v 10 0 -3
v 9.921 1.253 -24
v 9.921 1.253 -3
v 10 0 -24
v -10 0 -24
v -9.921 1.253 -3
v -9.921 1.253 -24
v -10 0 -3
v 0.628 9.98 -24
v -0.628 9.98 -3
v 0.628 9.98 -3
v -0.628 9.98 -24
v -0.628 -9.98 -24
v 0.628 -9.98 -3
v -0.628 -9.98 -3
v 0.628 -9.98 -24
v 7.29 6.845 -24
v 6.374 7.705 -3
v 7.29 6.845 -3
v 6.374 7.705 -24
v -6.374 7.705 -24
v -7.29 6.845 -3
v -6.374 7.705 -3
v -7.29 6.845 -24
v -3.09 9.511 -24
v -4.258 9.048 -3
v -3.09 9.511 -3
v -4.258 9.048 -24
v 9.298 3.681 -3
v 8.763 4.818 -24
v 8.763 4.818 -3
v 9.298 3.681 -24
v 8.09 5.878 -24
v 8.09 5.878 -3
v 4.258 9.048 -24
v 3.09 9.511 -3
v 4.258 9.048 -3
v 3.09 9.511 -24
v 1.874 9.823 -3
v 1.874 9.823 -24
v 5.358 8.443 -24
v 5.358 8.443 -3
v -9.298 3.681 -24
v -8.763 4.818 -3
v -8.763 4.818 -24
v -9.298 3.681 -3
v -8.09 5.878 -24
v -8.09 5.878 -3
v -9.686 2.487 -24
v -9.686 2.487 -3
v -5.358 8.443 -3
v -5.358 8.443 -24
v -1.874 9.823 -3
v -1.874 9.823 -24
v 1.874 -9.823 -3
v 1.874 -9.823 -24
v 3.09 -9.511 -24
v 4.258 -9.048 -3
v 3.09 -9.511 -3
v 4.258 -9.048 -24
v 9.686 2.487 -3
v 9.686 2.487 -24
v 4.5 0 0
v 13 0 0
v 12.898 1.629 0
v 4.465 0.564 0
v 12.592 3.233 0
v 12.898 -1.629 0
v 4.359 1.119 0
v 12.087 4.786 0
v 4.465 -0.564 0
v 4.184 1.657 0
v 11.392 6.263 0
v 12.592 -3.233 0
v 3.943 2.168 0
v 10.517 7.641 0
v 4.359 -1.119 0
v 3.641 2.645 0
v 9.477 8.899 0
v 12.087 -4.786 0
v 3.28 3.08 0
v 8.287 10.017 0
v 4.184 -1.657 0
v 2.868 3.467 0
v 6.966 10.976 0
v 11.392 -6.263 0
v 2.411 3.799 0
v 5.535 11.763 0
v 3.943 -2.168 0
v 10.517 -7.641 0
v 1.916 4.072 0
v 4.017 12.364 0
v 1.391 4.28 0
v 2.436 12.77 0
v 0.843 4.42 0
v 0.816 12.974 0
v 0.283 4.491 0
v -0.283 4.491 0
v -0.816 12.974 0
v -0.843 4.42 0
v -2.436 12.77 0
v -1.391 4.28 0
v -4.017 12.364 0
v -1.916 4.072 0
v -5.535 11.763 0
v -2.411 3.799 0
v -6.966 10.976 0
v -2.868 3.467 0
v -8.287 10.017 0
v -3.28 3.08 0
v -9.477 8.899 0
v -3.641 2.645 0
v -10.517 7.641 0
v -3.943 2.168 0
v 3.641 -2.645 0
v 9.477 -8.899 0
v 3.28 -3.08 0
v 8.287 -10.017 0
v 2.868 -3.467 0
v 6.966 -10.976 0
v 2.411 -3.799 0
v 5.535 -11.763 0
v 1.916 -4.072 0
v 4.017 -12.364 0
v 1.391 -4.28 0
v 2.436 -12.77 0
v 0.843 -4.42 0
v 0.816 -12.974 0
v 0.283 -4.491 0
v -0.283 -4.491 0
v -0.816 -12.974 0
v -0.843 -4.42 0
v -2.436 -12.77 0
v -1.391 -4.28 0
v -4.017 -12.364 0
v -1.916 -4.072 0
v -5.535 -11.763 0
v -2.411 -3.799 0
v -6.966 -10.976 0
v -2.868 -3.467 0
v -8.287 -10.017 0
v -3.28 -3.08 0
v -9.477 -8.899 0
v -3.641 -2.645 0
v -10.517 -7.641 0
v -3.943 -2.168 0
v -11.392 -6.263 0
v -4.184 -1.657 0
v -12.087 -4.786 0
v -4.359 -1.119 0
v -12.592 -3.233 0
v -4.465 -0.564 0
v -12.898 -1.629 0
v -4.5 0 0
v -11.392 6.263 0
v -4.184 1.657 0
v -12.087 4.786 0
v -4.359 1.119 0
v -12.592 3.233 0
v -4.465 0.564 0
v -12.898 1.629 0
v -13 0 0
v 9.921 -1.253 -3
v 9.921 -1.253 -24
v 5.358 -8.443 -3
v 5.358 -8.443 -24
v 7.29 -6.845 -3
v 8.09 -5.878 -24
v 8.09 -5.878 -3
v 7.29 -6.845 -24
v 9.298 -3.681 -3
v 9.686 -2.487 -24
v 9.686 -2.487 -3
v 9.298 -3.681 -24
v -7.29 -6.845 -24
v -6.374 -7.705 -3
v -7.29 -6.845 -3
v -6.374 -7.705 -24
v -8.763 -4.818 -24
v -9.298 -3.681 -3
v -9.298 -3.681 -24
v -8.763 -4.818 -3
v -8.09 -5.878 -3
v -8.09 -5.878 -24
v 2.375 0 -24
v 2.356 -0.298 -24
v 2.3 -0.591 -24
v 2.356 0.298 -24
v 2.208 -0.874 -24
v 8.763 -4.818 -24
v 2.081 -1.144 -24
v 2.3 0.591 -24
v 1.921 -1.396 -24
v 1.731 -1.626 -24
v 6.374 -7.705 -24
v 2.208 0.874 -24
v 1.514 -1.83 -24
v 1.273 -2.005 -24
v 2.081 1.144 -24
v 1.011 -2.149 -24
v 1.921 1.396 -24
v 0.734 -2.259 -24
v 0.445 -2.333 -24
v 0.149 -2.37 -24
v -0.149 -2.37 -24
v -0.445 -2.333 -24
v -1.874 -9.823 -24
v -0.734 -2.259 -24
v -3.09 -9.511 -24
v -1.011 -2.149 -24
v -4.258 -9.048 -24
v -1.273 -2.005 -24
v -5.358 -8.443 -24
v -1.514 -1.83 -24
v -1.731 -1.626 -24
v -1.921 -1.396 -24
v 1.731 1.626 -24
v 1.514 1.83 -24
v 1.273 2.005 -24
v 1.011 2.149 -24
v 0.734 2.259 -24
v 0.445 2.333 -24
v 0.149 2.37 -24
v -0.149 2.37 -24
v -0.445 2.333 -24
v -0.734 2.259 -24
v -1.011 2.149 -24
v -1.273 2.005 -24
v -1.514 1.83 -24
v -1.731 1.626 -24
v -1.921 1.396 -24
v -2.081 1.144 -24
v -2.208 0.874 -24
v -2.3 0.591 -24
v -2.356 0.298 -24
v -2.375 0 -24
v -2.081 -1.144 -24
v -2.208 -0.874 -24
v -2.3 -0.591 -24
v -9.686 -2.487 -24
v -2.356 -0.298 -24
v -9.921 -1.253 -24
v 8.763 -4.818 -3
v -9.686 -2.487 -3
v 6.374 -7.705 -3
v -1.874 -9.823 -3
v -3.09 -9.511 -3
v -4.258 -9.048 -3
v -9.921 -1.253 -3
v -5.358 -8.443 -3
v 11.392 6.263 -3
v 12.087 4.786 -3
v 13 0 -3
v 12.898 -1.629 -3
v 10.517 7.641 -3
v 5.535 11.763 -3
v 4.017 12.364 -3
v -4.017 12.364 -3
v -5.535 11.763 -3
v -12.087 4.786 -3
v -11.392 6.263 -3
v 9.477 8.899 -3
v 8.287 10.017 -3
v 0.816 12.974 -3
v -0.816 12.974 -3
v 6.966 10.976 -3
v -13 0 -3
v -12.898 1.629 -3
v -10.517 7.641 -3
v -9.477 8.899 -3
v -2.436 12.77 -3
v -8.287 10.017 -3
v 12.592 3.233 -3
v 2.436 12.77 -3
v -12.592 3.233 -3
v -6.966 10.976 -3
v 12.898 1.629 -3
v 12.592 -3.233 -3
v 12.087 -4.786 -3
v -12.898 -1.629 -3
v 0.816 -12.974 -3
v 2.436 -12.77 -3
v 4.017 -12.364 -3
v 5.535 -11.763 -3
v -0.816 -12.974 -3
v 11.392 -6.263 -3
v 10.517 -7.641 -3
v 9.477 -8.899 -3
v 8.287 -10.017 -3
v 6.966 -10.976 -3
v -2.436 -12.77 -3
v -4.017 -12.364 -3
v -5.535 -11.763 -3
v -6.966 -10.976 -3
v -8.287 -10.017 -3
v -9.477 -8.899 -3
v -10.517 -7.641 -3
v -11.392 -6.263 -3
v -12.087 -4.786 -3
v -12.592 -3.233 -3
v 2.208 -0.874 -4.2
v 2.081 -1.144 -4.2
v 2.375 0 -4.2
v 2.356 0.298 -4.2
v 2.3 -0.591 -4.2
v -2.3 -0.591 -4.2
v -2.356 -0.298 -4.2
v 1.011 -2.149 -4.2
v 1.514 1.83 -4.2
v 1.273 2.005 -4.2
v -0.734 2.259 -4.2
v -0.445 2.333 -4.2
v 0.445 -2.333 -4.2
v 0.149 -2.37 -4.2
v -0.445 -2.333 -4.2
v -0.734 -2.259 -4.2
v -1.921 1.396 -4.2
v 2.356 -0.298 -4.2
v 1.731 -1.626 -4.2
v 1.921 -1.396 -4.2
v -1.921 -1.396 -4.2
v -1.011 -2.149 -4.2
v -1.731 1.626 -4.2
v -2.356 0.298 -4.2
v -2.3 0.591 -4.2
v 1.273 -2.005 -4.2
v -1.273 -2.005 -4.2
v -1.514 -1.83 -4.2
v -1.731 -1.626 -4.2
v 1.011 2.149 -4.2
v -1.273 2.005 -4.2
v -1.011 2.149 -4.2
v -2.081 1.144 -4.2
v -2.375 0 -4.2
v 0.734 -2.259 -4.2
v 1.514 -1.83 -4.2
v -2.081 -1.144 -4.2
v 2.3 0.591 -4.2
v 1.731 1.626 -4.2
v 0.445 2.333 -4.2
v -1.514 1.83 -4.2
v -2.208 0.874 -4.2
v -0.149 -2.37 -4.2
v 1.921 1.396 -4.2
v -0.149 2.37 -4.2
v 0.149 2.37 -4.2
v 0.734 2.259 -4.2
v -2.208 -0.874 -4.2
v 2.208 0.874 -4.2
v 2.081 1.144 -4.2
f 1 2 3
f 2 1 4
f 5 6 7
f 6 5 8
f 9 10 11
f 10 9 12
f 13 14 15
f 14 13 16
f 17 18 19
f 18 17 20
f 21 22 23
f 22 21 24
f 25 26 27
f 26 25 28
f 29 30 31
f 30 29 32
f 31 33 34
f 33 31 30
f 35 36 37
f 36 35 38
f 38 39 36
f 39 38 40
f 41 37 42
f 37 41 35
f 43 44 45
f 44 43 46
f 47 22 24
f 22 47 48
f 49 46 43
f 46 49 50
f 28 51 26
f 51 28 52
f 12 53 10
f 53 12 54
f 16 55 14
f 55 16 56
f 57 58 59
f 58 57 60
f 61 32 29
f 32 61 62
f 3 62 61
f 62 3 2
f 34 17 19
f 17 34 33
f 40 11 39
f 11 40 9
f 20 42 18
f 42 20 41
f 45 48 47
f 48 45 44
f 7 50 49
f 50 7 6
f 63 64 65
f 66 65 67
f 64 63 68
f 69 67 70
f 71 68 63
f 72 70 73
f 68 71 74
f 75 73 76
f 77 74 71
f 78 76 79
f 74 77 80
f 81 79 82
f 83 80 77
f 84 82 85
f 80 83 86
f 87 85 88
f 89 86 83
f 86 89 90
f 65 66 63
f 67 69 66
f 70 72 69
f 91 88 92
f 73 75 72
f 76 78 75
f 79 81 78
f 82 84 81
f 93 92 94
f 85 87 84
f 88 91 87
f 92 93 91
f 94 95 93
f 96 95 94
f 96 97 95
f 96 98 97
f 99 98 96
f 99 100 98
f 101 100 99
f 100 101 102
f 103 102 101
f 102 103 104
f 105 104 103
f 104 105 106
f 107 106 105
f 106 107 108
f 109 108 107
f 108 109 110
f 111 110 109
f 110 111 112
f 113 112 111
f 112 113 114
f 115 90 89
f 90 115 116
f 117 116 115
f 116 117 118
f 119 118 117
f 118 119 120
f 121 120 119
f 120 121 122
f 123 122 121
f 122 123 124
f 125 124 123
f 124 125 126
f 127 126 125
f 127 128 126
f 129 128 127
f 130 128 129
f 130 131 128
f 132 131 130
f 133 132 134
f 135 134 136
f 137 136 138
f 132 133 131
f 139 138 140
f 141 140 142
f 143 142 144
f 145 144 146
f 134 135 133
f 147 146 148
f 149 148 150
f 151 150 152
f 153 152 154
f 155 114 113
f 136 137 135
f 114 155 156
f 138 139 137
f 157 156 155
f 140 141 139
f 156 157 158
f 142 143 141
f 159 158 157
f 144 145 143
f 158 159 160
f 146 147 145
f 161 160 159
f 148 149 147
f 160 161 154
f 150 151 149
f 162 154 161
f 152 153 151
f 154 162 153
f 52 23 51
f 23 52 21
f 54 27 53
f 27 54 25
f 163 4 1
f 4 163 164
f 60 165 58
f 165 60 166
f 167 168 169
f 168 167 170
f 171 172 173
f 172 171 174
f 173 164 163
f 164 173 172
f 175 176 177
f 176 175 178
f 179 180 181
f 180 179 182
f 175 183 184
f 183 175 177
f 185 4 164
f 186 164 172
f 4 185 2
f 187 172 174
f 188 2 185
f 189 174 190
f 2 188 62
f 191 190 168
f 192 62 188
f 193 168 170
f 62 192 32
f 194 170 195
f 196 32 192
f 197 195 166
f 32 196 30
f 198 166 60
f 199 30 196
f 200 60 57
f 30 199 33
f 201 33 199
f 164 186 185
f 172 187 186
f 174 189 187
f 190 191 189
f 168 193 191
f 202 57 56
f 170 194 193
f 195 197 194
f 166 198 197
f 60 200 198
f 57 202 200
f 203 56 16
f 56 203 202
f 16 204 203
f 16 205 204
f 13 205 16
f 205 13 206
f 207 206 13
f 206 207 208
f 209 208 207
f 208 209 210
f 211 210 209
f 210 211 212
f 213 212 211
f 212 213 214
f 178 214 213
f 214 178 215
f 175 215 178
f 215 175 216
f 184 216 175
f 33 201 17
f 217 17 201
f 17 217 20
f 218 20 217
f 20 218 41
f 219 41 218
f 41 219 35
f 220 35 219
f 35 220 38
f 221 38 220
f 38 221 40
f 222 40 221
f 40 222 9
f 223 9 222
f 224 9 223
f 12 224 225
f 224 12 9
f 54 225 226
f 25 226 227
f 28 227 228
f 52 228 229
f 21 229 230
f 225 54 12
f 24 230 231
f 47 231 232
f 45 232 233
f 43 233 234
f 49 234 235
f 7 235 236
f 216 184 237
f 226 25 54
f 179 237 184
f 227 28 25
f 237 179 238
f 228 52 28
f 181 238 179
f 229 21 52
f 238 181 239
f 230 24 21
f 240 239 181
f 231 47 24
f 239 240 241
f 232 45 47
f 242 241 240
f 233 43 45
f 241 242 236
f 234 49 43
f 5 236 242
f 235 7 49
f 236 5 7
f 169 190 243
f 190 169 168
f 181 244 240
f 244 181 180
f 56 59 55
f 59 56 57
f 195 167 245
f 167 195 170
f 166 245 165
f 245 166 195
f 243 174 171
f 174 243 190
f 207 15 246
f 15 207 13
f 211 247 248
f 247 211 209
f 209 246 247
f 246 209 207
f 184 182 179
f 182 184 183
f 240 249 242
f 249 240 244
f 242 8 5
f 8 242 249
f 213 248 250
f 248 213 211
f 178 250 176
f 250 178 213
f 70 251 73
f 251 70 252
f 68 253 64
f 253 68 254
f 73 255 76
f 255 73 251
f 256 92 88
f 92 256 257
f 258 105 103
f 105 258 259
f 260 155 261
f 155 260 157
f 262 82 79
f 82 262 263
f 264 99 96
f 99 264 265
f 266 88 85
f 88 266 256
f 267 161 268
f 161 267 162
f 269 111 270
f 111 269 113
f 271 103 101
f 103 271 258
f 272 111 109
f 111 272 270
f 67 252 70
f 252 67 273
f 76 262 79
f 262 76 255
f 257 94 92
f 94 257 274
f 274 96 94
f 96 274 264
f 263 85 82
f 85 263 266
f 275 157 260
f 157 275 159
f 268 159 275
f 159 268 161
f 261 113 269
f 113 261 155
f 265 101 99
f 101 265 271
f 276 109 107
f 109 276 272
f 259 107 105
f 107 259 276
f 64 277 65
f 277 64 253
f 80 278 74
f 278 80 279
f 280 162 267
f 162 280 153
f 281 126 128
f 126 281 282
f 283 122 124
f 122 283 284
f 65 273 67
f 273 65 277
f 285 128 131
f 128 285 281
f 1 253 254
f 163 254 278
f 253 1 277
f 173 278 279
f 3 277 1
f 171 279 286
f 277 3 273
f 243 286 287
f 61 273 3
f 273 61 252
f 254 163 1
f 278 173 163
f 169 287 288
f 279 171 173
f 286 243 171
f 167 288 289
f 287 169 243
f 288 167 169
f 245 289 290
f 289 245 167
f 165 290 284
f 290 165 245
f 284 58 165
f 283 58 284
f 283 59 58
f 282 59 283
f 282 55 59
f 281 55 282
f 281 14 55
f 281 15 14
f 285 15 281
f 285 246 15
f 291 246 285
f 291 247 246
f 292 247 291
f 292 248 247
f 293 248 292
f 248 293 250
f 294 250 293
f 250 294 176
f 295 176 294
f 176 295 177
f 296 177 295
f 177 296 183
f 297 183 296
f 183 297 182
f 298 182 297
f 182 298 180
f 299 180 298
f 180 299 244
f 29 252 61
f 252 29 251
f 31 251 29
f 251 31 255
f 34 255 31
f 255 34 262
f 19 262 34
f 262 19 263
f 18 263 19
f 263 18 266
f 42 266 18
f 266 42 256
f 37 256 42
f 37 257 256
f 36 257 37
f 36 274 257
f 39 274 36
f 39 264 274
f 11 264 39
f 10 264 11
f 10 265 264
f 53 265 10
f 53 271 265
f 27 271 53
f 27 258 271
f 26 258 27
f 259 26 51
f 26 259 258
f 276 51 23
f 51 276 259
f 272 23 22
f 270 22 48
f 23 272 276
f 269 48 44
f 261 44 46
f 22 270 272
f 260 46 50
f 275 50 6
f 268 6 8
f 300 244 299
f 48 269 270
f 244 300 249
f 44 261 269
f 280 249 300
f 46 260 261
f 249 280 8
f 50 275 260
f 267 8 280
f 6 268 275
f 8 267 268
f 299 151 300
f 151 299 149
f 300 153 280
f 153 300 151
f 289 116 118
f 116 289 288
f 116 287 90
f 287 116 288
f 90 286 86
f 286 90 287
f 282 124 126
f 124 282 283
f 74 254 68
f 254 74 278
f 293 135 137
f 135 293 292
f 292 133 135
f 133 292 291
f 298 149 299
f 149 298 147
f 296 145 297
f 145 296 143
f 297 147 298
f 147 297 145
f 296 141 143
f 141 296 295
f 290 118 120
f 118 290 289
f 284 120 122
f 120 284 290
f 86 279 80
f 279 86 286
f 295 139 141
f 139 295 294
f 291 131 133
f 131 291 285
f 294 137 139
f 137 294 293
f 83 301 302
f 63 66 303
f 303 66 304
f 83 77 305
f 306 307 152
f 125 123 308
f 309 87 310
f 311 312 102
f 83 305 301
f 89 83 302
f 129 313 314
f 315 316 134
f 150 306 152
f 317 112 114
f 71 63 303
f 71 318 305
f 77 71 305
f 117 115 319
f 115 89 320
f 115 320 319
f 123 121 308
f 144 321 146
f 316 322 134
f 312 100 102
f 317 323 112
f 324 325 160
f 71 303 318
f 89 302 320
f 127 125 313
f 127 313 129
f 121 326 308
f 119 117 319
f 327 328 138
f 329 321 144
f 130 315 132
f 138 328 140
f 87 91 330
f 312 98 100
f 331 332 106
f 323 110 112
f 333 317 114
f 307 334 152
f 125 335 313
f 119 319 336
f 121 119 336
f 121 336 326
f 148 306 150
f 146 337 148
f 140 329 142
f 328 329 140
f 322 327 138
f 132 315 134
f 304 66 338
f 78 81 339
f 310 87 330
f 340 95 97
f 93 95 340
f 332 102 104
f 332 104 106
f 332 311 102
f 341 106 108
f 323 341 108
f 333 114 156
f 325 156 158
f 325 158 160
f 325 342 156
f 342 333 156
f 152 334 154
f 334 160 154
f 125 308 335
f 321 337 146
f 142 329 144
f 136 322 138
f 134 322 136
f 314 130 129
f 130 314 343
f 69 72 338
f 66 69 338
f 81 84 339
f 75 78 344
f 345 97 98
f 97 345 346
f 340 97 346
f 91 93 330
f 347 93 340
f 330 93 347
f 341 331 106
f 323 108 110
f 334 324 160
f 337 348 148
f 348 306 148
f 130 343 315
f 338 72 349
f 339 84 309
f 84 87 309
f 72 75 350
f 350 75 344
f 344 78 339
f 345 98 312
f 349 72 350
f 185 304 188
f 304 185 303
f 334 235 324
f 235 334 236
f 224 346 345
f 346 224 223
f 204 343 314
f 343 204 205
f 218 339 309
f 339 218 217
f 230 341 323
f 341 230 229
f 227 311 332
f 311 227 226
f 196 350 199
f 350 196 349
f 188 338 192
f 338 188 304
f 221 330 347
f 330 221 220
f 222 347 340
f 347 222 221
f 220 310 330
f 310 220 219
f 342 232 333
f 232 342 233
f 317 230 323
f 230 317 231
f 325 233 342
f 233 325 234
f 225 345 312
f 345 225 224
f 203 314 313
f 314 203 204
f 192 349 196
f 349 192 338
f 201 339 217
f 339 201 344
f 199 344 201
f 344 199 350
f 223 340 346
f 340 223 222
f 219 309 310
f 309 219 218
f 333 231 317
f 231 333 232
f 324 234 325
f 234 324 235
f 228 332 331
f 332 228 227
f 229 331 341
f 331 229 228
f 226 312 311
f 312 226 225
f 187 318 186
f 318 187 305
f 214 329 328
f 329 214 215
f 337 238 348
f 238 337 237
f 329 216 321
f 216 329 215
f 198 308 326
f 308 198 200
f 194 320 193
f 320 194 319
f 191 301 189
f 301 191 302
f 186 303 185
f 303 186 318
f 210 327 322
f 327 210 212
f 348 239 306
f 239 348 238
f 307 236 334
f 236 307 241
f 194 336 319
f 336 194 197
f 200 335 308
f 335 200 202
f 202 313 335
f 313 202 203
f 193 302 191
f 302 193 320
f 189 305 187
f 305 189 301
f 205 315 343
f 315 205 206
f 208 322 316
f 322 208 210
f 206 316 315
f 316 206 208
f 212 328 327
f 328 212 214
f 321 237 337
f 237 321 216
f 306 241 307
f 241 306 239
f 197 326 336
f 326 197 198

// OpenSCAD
$fn = 50;


difference() {
	union() {
		translate(v = [0, 0, -24.0000000000]) {
			cylinder(h = 24, r = 10.0000000000);
		}
		translate(v = [0, 0, -3.0000000000]) {
			cylinder(h = 3, r = 13.0000000000);
		}
	}
	union() {
		translate(v = [0, 0, 0]) {
			rotate(a = [0, 0, 0]) {
				difference() {
					union() {
						#translate(v = [0, 0, -24.0000000000]) {
							cylinder(h = 24, r = 2.2500000000);
						}
						#translate(v = [0, 0, -4.2000000000]) {
							cylinder(h = 4.2000000000, r = 10.0000000000, r1 = 2.3750000000, r2 = 4.5000000000);
						}
						#translate(v = [0, 0, -24.0000000000]) {
							cylinder(h = 24, r = 2.3750000000);
						}
						#translate(v = [0, 0, -24.0000000000]) {
							cylinder(h = 24, r = 2.2500000000);
						}
					}
					union();
				}
			}
		}
	}
}
